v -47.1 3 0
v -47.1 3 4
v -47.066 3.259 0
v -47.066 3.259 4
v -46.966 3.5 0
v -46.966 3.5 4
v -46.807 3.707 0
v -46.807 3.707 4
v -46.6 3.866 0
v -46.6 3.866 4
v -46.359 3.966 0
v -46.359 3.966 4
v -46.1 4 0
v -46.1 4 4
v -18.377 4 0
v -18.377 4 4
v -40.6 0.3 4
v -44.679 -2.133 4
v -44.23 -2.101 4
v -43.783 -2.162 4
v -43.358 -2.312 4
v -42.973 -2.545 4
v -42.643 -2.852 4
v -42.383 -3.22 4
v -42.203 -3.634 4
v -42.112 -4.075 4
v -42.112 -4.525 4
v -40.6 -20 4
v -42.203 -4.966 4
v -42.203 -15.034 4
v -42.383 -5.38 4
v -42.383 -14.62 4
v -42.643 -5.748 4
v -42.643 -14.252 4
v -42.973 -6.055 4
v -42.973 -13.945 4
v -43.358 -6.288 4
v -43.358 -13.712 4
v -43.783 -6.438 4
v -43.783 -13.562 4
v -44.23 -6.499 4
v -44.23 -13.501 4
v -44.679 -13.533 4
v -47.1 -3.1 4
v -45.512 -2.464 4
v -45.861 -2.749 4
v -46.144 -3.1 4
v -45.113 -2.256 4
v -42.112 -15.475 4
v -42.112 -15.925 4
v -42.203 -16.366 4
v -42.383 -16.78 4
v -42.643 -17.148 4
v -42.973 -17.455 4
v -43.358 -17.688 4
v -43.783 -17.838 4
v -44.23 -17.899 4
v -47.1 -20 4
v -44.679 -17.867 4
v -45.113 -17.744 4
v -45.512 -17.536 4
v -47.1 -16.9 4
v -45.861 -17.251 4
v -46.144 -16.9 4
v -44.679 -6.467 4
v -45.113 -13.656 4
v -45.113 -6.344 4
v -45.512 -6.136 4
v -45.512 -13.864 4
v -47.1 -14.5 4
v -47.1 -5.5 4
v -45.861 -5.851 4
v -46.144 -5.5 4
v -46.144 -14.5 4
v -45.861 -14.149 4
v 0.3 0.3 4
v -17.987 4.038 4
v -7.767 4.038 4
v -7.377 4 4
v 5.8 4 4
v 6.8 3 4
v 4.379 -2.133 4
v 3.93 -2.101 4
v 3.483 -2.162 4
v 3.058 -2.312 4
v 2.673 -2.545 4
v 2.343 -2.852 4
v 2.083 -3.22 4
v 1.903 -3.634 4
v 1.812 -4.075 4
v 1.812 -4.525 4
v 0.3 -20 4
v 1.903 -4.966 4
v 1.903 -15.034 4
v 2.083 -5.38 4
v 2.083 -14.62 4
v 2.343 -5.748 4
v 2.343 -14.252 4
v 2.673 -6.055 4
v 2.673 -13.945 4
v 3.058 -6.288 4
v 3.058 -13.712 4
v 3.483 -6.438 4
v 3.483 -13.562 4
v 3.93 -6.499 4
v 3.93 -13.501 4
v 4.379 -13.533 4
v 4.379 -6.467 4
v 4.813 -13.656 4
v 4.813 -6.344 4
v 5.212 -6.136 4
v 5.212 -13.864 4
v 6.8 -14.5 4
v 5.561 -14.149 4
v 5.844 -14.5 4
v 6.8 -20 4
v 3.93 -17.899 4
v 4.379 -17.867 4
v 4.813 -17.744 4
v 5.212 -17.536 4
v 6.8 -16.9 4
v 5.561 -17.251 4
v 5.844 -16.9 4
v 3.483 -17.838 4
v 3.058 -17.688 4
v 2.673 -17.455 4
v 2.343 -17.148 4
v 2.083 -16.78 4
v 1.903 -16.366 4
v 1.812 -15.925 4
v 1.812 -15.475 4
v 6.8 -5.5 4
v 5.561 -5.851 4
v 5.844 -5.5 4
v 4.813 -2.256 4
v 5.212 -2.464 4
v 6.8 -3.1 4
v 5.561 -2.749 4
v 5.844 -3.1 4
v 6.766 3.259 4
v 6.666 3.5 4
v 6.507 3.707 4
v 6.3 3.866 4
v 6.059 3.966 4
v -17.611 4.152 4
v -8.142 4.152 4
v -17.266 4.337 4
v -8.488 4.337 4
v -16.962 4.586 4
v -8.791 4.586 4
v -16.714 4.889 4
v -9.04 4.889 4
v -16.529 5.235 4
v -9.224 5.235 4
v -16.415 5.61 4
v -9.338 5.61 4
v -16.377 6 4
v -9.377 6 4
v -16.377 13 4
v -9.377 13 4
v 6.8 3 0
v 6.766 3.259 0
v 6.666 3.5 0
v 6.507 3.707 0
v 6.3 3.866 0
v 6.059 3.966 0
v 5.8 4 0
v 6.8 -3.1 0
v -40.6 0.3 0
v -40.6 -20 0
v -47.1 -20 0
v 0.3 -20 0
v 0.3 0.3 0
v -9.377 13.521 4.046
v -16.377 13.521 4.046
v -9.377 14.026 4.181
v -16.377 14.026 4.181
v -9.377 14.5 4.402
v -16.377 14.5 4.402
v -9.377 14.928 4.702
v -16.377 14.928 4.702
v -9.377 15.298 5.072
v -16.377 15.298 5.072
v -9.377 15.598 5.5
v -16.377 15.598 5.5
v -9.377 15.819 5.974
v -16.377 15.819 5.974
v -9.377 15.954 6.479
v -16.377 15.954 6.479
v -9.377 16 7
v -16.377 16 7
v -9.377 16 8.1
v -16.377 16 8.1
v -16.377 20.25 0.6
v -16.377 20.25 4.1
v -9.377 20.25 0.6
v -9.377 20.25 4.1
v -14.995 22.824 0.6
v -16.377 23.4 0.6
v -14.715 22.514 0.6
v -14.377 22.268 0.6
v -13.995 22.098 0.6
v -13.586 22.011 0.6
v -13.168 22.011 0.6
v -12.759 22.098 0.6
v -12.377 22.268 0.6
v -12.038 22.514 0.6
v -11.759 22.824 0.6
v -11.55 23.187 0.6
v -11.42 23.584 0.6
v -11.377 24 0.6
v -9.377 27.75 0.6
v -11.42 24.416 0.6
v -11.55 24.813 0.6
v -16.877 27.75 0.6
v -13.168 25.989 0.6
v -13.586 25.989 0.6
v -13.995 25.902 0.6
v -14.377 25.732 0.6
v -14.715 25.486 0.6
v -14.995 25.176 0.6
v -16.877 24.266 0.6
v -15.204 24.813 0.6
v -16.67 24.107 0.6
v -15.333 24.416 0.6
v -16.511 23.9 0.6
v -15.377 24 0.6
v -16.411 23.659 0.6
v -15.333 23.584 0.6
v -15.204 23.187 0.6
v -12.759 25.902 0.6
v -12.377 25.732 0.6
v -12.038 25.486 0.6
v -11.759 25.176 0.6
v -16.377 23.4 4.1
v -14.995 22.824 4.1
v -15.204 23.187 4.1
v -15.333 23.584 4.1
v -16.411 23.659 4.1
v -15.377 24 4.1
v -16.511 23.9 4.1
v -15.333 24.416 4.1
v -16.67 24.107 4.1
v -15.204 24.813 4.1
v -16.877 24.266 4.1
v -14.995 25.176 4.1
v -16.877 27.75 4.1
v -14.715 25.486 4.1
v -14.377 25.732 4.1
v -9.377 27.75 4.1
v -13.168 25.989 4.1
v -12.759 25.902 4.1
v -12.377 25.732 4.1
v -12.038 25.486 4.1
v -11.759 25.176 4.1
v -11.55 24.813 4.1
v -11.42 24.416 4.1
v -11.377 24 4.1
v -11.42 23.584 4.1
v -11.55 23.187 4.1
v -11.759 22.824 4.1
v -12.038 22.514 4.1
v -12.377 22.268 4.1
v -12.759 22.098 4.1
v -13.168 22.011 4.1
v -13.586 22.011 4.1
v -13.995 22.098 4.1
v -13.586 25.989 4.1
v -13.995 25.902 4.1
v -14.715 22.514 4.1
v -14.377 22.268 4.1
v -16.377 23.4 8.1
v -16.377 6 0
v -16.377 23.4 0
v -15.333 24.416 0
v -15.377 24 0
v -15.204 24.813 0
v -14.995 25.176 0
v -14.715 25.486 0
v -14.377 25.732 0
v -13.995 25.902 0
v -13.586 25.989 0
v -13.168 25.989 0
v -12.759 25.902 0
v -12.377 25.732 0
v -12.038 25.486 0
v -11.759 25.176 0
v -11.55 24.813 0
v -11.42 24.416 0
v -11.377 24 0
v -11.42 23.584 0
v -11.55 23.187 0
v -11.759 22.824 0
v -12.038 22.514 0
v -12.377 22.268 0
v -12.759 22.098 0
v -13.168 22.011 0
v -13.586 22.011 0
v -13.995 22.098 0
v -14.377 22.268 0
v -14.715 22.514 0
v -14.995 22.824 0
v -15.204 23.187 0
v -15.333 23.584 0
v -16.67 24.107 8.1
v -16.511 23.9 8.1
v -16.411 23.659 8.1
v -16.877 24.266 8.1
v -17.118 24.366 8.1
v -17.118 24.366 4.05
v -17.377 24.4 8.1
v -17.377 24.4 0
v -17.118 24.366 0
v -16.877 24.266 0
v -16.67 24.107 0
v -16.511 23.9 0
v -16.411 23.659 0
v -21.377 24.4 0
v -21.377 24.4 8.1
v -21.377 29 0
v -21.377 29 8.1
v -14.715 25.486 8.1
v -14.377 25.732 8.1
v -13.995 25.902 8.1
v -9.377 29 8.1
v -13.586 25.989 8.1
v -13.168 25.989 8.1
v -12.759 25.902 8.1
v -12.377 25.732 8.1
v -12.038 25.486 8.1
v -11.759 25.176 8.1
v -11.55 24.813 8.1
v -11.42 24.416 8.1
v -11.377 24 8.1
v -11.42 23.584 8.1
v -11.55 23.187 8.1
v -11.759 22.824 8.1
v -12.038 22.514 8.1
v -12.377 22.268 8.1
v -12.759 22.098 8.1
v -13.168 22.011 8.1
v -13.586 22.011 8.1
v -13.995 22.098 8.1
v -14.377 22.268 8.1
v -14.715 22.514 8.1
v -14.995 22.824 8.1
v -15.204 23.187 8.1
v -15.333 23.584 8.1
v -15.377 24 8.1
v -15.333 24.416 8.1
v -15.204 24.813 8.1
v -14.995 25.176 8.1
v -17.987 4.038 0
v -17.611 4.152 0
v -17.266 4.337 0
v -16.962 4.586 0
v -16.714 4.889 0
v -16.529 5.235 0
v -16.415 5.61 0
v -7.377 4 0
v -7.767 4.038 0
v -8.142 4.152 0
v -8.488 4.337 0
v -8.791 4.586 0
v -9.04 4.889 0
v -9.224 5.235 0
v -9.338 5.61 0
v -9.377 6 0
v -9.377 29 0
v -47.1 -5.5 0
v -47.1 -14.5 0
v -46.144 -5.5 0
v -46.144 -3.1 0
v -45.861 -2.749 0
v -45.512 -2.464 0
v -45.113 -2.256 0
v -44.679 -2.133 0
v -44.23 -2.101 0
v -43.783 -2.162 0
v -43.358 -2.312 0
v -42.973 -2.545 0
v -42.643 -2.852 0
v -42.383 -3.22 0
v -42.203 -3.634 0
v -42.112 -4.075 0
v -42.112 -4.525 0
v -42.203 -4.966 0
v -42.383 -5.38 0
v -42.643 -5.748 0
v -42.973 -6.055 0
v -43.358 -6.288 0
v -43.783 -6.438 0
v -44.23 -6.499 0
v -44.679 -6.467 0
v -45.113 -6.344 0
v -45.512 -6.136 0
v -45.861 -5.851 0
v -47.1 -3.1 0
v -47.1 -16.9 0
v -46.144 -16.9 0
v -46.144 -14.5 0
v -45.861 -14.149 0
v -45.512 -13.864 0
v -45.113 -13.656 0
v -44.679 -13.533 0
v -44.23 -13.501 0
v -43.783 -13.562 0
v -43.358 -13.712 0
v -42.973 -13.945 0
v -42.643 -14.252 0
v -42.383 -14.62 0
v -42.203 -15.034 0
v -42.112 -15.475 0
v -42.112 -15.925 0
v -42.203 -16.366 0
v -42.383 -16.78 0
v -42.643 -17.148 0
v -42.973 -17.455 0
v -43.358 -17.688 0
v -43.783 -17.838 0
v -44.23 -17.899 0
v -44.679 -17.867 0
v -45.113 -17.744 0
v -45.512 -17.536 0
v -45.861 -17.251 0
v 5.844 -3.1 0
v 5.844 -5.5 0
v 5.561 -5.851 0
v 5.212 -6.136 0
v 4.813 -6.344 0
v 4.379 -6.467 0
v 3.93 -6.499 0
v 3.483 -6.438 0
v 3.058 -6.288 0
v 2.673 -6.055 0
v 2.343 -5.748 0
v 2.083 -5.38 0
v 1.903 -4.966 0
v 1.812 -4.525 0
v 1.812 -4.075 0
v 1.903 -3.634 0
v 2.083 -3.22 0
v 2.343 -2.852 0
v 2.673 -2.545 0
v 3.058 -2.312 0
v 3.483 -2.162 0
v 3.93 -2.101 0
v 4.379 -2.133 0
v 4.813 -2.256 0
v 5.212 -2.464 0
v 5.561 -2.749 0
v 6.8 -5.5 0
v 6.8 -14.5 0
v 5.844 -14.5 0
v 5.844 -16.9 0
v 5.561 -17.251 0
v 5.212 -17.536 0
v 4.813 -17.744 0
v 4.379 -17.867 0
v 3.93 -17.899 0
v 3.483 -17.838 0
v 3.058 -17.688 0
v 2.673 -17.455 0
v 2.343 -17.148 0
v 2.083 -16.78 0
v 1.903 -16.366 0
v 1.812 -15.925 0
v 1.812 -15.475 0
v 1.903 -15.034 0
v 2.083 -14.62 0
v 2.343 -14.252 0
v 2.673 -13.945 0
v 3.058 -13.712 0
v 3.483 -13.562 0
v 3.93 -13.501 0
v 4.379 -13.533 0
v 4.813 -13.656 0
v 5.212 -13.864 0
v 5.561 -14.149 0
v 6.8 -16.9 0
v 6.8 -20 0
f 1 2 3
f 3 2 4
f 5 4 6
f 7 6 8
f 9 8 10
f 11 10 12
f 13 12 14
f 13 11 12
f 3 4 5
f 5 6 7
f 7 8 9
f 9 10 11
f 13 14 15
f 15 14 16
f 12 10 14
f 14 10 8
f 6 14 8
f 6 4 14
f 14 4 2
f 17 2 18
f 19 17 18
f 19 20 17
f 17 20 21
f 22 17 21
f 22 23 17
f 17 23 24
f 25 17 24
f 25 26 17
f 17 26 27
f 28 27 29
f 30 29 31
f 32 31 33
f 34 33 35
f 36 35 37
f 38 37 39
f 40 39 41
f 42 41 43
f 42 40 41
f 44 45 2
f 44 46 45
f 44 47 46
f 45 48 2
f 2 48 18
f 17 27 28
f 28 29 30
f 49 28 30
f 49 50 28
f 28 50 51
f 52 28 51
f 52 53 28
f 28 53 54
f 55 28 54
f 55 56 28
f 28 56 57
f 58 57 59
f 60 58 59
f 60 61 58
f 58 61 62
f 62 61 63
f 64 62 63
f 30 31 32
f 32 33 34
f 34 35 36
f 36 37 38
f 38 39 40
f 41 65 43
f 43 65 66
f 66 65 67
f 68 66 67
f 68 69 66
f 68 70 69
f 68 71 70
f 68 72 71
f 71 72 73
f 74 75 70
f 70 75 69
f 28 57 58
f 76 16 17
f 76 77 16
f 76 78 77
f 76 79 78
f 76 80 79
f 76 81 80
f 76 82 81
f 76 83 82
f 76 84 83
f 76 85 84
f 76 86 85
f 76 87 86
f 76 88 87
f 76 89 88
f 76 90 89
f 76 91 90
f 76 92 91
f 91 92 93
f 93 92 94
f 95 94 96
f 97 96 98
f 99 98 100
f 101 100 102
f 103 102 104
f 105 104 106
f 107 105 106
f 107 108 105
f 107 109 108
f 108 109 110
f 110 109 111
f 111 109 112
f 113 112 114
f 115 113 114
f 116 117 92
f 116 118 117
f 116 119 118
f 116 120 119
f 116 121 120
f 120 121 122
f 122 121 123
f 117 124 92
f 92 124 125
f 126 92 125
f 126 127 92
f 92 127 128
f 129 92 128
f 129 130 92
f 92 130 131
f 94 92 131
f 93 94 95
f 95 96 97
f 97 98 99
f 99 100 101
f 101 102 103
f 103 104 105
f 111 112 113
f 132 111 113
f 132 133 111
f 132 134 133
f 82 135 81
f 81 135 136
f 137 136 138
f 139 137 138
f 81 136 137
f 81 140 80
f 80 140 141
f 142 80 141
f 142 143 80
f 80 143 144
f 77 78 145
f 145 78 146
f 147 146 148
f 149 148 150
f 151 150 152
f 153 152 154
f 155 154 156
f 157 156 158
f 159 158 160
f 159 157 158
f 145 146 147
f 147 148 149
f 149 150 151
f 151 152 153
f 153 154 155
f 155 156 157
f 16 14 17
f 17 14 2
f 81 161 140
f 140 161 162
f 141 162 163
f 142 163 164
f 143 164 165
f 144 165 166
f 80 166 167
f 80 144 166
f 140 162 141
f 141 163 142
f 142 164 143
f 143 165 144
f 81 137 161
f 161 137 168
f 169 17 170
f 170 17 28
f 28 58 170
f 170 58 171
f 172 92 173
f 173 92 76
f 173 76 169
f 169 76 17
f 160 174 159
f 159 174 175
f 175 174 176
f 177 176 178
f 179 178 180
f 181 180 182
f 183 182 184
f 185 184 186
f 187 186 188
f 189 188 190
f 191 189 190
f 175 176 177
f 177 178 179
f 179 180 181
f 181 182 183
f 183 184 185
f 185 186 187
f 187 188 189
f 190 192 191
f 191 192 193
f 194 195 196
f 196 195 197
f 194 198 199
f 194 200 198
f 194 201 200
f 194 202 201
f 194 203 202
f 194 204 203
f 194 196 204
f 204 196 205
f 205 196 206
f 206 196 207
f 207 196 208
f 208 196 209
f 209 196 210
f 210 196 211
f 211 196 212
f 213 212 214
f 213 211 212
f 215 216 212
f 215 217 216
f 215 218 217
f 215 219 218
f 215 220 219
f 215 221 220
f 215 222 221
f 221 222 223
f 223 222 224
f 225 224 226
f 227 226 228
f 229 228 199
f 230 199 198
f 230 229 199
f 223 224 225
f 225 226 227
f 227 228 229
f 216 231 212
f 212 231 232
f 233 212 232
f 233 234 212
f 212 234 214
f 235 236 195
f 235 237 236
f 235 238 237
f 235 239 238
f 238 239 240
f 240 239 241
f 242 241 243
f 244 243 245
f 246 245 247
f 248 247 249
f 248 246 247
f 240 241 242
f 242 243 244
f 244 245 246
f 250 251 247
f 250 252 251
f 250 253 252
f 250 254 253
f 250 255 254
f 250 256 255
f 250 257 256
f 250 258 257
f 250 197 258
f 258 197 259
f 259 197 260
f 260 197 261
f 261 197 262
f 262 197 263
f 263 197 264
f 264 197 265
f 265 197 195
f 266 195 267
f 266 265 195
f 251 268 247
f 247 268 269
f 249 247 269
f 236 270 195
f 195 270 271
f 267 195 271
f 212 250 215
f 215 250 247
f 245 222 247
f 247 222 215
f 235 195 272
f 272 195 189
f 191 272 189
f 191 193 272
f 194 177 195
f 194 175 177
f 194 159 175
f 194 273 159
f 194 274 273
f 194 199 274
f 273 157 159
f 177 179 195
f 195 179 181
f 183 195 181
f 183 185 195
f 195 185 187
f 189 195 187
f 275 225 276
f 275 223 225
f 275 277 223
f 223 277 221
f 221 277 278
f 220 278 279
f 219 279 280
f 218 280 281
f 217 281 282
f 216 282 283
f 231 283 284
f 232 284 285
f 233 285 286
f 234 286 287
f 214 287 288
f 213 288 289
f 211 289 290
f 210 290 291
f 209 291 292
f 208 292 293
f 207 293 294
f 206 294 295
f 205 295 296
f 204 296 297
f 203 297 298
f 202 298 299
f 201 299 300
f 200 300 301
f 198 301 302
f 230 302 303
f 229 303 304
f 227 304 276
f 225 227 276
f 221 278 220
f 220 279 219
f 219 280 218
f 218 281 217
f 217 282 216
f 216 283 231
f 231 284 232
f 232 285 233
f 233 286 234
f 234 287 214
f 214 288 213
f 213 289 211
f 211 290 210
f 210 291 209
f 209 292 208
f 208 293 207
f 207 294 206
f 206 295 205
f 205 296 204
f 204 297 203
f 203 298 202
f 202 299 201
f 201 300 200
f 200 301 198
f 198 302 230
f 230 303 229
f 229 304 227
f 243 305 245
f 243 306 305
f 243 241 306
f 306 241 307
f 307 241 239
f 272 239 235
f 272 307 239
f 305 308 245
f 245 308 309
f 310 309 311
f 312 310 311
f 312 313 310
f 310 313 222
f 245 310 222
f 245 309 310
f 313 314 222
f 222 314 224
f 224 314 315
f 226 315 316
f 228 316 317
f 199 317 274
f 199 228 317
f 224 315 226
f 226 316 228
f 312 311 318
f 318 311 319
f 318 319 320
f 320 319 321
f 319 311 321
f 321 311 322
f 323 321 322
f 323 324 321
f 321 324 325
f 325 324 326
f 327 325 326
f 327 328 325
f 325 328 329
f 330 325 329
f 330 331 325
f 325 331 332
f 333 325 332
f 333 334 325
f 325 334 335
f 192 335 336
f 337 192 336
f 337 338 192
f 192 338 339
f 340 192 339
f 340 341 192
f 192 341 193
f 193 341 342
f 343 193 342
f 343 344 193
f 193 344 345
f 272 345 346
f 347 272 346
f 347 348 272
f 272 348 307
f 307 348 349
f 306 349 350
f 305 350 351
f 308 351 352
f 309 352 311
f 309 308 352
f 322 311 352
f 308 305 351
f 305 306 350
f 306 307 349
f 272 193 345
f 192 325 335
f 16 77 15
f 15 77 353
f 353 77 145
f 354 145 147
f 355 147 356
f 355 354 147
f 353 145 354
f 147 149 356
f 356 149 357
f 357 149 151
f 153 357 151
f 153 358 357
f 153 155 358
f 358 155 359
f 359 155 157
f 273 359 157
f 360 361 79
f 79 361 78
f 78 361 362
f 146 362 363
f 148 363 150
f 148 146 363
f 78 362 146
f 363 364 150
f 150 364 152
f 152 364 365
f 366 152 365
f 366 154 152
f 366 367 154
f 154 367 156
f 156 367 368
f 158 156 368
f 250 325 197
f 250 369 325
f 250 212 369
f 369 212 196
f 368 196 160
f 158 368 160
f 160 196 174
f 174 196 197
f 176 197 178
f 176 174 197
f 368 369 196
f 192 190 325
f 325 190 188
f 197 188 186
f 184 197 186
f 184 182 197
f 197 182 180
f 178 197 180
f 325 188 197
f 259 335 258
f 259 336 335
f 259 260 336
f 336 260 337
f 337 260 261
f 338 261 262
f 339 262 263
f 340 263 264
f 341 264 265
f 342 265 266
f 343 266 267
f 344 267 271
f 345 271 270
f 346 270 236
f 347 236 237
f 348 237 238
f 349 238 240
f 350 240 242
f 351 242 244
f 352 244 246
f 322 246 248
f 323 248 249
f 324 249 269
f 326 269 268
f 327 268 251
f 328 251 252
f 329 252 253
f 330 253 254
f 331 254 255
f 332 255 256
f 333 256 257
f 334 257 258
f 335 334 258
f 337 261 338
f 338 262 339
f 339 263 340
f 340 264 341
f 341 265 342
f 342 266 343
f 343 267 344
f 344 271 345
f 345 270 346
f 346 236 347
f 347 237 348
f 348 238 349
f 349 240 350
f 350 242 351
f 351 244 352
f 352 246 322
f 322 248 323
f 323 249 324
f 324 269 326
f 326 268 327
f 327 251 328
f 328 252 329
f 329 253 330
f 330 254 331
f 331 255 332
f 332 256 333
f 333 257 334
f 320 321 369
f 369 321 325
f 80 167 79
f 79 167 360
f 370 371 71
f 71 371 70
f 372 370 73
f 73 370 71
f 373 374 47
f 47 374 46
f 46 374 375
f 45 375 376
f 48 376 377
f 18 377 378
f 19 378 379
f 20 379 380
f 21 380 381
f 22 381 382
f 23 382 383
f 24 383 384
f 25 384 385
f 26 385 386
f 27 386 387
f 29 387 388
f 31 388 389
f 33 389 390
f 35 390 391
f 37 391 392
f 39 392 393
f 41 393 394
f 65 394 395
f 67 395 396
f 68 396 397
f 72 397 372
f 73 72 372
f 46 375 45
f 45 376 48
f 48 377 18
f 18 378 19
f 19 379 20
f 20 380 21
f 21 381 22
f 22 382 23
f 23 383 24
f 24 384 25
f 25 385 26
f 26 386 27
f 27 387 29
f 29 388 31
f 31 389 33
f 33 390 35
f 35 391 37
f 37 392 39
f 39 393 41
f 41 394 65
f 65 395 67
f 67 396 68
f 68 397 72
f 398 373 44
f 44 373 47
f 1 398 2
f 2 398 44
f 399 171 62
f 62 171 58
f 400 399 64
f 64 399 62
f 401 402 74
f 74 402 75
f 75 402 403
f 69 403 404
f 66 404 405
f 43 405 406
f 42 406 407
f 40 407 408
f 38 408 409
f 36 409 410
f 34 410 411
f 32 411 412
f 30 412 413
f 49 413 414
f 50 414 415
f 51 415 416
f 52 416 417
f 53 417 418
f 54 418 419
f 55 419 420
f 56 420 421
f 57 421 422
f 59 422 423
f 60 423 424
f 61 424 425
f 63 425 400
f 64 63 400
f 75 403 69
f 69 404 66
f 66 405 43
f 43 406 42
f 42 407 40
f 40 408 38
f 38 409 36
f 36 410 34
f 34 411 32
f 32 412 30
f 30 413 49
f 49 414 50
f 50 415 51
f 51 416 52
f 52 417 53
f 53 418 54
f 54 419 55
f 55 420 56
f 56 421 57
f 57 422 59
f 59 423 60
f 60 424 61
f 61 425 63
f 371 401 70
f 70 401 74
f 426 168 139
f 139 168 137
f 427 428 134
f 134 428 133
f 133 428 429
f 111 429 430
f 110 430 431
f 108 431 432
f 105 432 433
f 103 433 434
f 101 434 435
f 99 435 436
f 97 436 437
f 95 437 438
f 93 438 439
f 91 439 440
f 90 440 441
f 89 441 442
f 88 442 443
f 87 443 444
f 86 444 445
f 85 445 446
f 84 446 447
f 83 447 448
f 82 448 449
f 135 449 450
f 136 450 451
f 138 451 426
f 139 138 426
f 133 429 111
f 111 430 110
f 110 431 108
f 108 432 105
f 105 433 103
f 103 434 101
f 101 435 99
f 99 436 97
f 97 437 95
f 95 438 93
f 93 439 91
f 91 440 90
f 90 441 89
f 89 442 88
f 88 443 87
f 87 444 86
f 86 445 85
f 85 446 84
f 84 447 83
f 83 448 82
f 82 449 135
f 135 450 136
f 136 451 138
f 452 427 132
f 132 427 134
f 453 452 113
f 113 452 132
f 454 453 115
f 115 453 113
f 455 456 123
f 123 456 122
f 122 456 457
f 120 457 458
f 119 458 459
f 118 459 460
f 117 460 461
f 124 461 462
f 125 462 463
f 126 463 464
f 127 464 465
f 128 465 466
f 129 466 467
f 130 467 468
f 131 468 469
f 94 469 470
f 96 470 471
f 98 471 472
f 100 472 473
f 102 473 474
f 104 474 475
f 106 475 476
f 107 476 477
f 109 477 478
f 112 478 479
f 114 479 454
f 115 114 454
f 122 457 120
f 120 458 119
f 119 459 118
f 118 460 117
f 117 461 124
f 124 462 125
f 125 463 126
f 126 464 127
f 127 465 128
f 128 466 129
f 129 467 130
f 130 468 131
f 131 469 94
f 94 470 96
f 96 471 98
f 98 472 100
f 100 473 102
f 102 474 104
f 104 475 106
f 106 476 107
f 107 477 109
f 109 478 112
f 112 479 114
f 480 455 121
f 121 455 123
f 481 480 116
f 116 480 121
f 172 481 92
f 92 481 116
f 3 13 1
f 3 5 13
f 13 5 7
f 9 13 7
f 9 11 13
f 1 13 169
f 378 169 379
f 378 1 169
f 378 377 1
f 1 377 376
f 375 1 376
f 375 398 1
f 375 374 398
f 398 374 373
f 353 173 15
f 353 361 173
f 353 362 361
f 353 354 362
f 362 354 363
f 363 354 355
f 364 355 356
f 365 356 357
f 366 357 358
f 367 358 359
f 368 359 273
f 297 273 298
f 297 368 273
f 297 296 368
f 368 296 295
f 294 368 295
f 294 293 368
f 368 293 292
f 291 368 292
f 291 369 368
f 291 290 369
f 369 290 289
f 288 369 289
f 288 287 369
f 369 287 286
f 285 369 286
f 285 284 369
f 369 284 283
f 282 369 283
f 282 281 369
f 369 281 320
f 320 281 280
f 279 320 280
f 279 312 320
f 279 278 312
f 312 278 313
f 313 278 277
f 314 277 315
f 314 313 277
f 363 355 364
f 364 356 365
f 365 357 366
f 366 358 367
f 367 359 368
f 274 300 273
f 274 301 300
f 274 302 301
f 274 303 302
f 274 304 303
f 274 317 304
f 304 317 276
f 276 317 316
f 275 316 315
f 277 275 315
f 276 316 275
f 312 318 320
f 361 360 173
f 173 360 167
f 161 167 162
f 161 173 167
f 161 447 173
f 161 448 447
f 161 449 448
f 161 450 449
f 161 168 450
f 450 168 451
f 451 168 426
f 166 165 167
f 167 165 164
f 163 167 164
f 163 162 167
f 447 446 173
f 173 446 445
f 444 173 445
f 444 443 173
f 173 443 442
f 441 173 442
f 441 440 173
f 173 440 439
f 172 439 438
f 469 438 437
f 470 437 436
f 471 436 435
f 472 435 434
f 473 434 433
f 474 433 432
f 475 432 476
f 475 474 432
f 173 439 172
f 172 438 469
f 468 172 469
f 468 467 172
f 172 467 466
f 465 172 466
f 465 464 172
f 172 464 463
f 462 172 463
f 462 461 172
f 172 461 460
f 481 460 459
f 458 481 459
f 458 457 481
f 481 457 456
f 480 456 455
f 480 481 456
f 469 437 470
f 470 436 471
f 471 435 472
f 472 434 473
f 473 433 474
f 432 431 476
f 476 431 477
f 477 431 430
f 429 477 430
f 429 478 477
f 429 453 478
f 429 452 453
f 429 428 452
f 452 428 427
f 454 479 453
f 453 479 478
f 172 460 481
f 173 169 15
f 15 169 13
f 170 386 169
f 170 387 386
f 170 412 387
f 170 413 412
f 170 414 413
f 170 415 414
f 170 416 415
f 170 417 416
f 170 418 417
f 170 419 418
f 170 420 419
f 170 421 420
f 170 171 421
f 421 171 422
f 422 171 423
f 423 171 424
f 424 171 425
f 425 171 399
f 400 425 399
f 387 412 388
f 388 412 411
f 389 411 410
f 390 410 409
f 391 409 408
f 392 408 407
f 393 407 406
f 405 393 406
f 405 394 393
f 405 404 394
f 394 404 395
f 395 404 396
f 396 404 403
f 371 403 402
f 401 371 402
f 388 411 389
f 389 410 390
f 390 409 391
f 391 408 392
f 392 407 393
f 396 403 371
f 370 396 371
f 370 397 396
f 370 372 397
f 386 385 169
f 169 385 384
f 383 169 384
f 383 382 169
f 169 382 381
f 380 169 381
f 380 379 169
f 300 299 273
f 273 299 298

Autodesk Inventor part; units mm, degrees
ref_plane "YZ Plane" through (0, 0, 0) normal (1, 0, 0) x (0, 1, 0)
sketch "Sketch1" plane through (0, 0, 0) normal (0, 0, 1) x (1, 0, 0)
  line L0 (5.8439, -14.5) -> (6.8, -14.5) projected
  line L1 (6.8, -5.5) -> (6.8, -14.5) projected
  line L2 (6.8, -5.5) -> (5.8439, -5.5) projected
  arc A0 (5.8439, -3.1) -> (5.8439, -5.5) centre (4, -4.3) ccw projected
  line L3 (5.8439, -3.1) -> (6.8, -3.1) projected
  line L4 (6.8, 0) -> (6.8, -3.1) projected
  line L5 (0, 0) -> (6.8, 0) projected
  line L6 (0, -20) -> (0, 0) projected
  line L7 (0, -20) -> (6.8, -20) projected
  line L8 (6.8, -16.9) -> (6.8, -20) projected
  line L9 (6.8, -16.9) -> (5.8439, -16.9) projected
  arc A1 (5.8439, -14.5) -> (5.8439, -16.9) centre (4, -15.7) ccw projected
  line L10 (-47.1, -14.5) -> (-46.1439, -14.5) projected
  arc A2 (-46.1439, -16.9) -> (-46.1439, -14.5) centre (-44.3, -15.7) ccw projected
  line L11 (-46.1439, -16.9) -> (-47.1, -16.9) projected
  line L12 (-47.1, -16.9) -> (-47.1, -20) projected
  line L13 (-40.3, -20) -> (-47.1, -20) projected
  line L14 (-40.3, 0) -> (-40.3, -20) projected
  line L15 (-40.3, 0) -> (-47.1, 0) projected
  line L16 (-47.1, 0) -> (-47.1, -3.1) projected
  line L17 (-47.1, -3.1) -> (-46.1439, -3.1) projected
  arc A3 (-46.1439, -5.5) -> (-46.1439, -3.1) centre (-44.3, -4.3) ccw projected
  line L18 (-46.1439, -5.5) -> (-47.1, -5.5) projected
  line L19 (-47.1, -5.5) -> (-47.1, -14.5) projected
extrude "Extrusion1" add sketch "Sketch1" along normal blind 4
sketch "Sketch2" plane through (0, 0, 0) normal (0, 1, 0) x (1, 0, 0)
  line L0 (0, 0) -> (6.8, 0) projected
  line L1 (0, 0) -> (0, -4) projected
  line L2 (6.8, -4) -> (0, -4) projected
  line L3 (6.8, 0) -> (6.8, -4) projected
  line L4 (-47.1, 0) -> (-47.1, -4) projected
  line L5 (-40.3, -4) -> (-47.1, -4) projected
  line L6 (6.8, 0) -> (-47.1, 0)
  line L7 (-47.1, 0) -> (-47.1, -4)
  line L8 (-47.1, -4) -> (6.8, -4)
  line L9 (6.8, -4) -> (6.8, 0)
extrude "Extrusion2" add sketch "Sketch2" along normal blind 4 contours L1 L8 L5 L4 L6
sketch "Sketch3" plane through (0, 0, 4) normal (1, 0, 0) x (0, 0, -1)
  line L0 (4, 0) -> (0, 0) projected
  line L1 (4, 4) -> (4, 0) projected
  line L2 (0, 4) -> (4, 4) projected
  line L3 (0, 0) -> (0, 4) projected
extrude "Extrusion3" add sketch "Sketch3" along normal up to surface (6.8 mm away)
sketch "Sketch4" plane through (0, 4, 0) normal (0, 1, 0) x (1, 0, 0)
  line L0 (6.8, 0) -> (-47.1, 0) projected
  line L1 (-47.1, -4) -> (6.8, -4) projected
  line L2 (-9.3767, -8.1) -> (-9.3767, -13.1) construction
  line L3 (-21.8189, -8.1) -> (-9.3767, -8.1) construction
  arc A0 (-17.3767, -8.1) -> (-40.8, 16.4941) centre (-48.3, -14.1) ccw construction
  line L4 (-9.3767, -4) -> (-16.3767, -4) construction
  line L5 (-16.3767, -4) -> (-16.3767, -8.1) construction
  line L6 (-16.3767, -8.1) -> (-9.3767, -8.1) construction
  line L7 (-9.3767, -8.1) -> (-9.3767, -4) construction
  line L8 (-9.3767, -4) -> (-16.3767, -4)
  line L9 (-16.3767, -4) -> (-16.3767, 0)
  line L10 (-16.3767, 0) -> (-9.3767, 0)
  line L11 (-9.3767, 0) -> (-9.3767, -4)
  point P0 (0, 0)
  dimension "d6" = 7
ref_plane "Work Plane1" through (-21.8189, 29, 8.1) normal (0, 1, 0) x (0, 0, 1)
extrude "Extrusion4" add sketch "Sketch4" along normal up to surface (25 mm away)
sketch "Sketch5" plane through (0, 0, 4) normal (0, 0, 1) x (1, 0, 0)
  circle A0 centre (-13.3767, 24) radius 2 construction
  line L0 (-21.8189, 24) -> (-17.3767, 24) construction
  line L1 (-21.8189, 24) -> (-21.8189, 29) construction
  line L2 (-21.8189, 29) -> (-9.3767, 29) construction
  line L3 (-9.3767, 19) -> (-9.3767, 29) construction
  line L4 (-17.3767, 19) -> (-9.3767, 19) construction
  line L5 (-17.3767, 24) -> (-17.3767, 19) construction
  line L6 (-9.3767, 19) -> (-16.3767, 19) construction
  line L7 (-16.3767, 19) -> (-16.3767, 29) construction
  line L8 (-16.3767, 29) -> (-9.3767, 29) construction
  line L9 (-9.3767, 29) -> (-9.3767, 19) construction
  line L10 (-9.3767, 19) -> (-16.3767, 19)
  line L11 (-16.3767, 19) -> (-16.3767, 29)
  line L12 (-16.3767, 29) -> (-9.3767, 29)
  line L13 (-9.3767, 29) -> (-9.3767, 19)
  circle A1 centre (-13.3767, 24) radius 2
ref_plane "Work Plane2" through (-21.8189, 19, 8.1) normal (0, 0, -1) x (0, 1, 0)
extrude "Extrusion5" add sketch "Sketch5" along normal up to surface (4.1 mm away)
fillet "Fillet2" radius 2 2 edges at (-9.3767, 4, 2) (-16.3767, 4, 2)
sketch "Sketch6" plane through (-16.3767, 19, 8.1) normal (-1, 0, 0) x (0, 0, 1)
  line L0 (0, 5) -> (-24.5941, 5) construction
  line L1 (0, 0) -> (-24.5941, 0) construction
  line L2 (-8.1, 10) -> (0.5132, 10) construction
  line L3 (0.5132, 10) -> (0.5132, 5) construction
  line L4 (0.5132, 5) -> (-8.1, 5) construction
  line L5 (-8.1, 5) -> (-8.1, 10) construction
  line L6 (-8.1, 10) -> (0, 10)
  line L7 (0, 10) -> (0, 5)
  line L8 (0, 5) -> (-8.1, 5)
  line L9 (-8.1, 5) -> (-8.1, 10)
  point P0 (-8.1, -19)
extrude "Extrusion6" add sketch "Sketch6" along normal blind 5
sketch "Sketch7" plane through (-16.3767, 24, 0) normal (0, -1, 0) x (1, 0, 0)
  line L0 (0, 8.1) -> (0, 0) projected
  line L1 (0, 8.1) -> (-5, 8.1) projected
  line L2 (-5, 0) -> (-5, 8.1) projected
  line L3 (0, 0) -> (-5, 0) projected
  point P0 (16.3767, 0)
extrude "Extrusion7" cut sketch "Sketch7" against normal blind 0.4
sketch "Sketch8" plane through (0, 0, 0) normal (0, 0, -1) x (-1, 0, 0)
  circle A0 centre (13.3767, 24) radius 2 construction
  circle A1 centre (13.3767, 24) radius 2 projected
extrude "Extrusion8" cut sketch "Sketch8" against normal blind 4
fillet "Fillet3" radius 1 1 edges at (-16.3767, 24.4, 4.05)
sketch "Sketch9" plane through (-9.3767, 19, 8.1) normal (1, 0, 0) x (0, 0, -1)
  line L0 (0, 0) -> (0, 10) projected
  line L1 (8.1, 7) -> (0, 7) construction
  line L2 (8.1, 3) -> (0, 3) construction
  line L3 (24.5941, 5) -> (0, 5) construction
  line L4 (-5, 5) -> (0, 5) construction
  line L5 (4, 8.75) -> (7.5, 8.75)
  line L6 (7.5, 8.75) -> (7.5, 1.25)
  line L7 (7.5, 1.25) -> (4, 1.25)
  line L8 (4, 1.25) -> (4, 8.75)
  point P0 (8.1, -19)
  point P1 (4, 5)
  dimension "d20" = 3.5
  dimension "d21" = 7.5
  dimension "d22" = 4
extrude "Extrusion9" cut sketch "Sketch9" against normal blind 7.5
sketch "Sketch10" plane through (-16.3767, 19, 4) normal (0, -1, 0) x (1, 0, 0)
  line L0 (0, 4.1) -> (7, 4.1) projected
  line L1 (0, 0) -> (0, 4.1) projected
  line L2 (7, 0) -> (0, 0) projected
  line L3 (7, 0) -> (7, 4.1) projected
  point P0 (16.3767, -4)
extrude "Extrusion10" add sketch "Sketch10" along normal blind 3
fillet "Fillet4" radius 3 1 edges at (-12.8767, 16, 4)
sketch "Sketch11" plane through (0, 0, 0) normal (0, -1, 0) x (1, 0, 0)
  line L0 (-40.3, 0) -> (-40.3, 4) projected
  line L1 (0, 0) -> (-40.3, 0) projected
  line L2 (0, 0) -> (0, 4) projected
  line L3 (-40.3, 4) -> (0, 4) projected
extrude "Extrusion11" cut sketch "Sketch11" against normal blind 0.3
sketch "Sketch12" plane through (0, -20, 0) normal (-1, 0, 0) x (0, 0, 1)
  line L0 (0, 0) -> (0, 20.3) projected
  line L1 (0, 0) -> (4, 0) projected
  line L2 (4, 20.3) -> (4, 0) projected
  line L3 (4, 20.3) -> (0, 20.3) projected
  point P0 (0, 20)
extrude "Extrusion12" cut sketch "Sketch12" against normal blind 0.3
sketch "Sketch13" plane through (-40.3, -20, 4) normal (1, 0, 0) x (0, 0, -1)
  line L0 (4, 0) -> (4, 20.3) projected
  line L1 (4, 20.3) -> (0, 20.3) projected
  line L2 (0, 0) -> (0, 20.3) projected
  line L3 (4, 0) -> (0, 0) projected
  point P0 (4, 20)
extrude "Extrusion13" cut sketch "Sketch13" against normal blind 0.3
fillet "Fillet5" radius 1 2 edges at (6.8, 4, 2) (-47.1, 4, 2)
properties part number "MG996RBracket"
